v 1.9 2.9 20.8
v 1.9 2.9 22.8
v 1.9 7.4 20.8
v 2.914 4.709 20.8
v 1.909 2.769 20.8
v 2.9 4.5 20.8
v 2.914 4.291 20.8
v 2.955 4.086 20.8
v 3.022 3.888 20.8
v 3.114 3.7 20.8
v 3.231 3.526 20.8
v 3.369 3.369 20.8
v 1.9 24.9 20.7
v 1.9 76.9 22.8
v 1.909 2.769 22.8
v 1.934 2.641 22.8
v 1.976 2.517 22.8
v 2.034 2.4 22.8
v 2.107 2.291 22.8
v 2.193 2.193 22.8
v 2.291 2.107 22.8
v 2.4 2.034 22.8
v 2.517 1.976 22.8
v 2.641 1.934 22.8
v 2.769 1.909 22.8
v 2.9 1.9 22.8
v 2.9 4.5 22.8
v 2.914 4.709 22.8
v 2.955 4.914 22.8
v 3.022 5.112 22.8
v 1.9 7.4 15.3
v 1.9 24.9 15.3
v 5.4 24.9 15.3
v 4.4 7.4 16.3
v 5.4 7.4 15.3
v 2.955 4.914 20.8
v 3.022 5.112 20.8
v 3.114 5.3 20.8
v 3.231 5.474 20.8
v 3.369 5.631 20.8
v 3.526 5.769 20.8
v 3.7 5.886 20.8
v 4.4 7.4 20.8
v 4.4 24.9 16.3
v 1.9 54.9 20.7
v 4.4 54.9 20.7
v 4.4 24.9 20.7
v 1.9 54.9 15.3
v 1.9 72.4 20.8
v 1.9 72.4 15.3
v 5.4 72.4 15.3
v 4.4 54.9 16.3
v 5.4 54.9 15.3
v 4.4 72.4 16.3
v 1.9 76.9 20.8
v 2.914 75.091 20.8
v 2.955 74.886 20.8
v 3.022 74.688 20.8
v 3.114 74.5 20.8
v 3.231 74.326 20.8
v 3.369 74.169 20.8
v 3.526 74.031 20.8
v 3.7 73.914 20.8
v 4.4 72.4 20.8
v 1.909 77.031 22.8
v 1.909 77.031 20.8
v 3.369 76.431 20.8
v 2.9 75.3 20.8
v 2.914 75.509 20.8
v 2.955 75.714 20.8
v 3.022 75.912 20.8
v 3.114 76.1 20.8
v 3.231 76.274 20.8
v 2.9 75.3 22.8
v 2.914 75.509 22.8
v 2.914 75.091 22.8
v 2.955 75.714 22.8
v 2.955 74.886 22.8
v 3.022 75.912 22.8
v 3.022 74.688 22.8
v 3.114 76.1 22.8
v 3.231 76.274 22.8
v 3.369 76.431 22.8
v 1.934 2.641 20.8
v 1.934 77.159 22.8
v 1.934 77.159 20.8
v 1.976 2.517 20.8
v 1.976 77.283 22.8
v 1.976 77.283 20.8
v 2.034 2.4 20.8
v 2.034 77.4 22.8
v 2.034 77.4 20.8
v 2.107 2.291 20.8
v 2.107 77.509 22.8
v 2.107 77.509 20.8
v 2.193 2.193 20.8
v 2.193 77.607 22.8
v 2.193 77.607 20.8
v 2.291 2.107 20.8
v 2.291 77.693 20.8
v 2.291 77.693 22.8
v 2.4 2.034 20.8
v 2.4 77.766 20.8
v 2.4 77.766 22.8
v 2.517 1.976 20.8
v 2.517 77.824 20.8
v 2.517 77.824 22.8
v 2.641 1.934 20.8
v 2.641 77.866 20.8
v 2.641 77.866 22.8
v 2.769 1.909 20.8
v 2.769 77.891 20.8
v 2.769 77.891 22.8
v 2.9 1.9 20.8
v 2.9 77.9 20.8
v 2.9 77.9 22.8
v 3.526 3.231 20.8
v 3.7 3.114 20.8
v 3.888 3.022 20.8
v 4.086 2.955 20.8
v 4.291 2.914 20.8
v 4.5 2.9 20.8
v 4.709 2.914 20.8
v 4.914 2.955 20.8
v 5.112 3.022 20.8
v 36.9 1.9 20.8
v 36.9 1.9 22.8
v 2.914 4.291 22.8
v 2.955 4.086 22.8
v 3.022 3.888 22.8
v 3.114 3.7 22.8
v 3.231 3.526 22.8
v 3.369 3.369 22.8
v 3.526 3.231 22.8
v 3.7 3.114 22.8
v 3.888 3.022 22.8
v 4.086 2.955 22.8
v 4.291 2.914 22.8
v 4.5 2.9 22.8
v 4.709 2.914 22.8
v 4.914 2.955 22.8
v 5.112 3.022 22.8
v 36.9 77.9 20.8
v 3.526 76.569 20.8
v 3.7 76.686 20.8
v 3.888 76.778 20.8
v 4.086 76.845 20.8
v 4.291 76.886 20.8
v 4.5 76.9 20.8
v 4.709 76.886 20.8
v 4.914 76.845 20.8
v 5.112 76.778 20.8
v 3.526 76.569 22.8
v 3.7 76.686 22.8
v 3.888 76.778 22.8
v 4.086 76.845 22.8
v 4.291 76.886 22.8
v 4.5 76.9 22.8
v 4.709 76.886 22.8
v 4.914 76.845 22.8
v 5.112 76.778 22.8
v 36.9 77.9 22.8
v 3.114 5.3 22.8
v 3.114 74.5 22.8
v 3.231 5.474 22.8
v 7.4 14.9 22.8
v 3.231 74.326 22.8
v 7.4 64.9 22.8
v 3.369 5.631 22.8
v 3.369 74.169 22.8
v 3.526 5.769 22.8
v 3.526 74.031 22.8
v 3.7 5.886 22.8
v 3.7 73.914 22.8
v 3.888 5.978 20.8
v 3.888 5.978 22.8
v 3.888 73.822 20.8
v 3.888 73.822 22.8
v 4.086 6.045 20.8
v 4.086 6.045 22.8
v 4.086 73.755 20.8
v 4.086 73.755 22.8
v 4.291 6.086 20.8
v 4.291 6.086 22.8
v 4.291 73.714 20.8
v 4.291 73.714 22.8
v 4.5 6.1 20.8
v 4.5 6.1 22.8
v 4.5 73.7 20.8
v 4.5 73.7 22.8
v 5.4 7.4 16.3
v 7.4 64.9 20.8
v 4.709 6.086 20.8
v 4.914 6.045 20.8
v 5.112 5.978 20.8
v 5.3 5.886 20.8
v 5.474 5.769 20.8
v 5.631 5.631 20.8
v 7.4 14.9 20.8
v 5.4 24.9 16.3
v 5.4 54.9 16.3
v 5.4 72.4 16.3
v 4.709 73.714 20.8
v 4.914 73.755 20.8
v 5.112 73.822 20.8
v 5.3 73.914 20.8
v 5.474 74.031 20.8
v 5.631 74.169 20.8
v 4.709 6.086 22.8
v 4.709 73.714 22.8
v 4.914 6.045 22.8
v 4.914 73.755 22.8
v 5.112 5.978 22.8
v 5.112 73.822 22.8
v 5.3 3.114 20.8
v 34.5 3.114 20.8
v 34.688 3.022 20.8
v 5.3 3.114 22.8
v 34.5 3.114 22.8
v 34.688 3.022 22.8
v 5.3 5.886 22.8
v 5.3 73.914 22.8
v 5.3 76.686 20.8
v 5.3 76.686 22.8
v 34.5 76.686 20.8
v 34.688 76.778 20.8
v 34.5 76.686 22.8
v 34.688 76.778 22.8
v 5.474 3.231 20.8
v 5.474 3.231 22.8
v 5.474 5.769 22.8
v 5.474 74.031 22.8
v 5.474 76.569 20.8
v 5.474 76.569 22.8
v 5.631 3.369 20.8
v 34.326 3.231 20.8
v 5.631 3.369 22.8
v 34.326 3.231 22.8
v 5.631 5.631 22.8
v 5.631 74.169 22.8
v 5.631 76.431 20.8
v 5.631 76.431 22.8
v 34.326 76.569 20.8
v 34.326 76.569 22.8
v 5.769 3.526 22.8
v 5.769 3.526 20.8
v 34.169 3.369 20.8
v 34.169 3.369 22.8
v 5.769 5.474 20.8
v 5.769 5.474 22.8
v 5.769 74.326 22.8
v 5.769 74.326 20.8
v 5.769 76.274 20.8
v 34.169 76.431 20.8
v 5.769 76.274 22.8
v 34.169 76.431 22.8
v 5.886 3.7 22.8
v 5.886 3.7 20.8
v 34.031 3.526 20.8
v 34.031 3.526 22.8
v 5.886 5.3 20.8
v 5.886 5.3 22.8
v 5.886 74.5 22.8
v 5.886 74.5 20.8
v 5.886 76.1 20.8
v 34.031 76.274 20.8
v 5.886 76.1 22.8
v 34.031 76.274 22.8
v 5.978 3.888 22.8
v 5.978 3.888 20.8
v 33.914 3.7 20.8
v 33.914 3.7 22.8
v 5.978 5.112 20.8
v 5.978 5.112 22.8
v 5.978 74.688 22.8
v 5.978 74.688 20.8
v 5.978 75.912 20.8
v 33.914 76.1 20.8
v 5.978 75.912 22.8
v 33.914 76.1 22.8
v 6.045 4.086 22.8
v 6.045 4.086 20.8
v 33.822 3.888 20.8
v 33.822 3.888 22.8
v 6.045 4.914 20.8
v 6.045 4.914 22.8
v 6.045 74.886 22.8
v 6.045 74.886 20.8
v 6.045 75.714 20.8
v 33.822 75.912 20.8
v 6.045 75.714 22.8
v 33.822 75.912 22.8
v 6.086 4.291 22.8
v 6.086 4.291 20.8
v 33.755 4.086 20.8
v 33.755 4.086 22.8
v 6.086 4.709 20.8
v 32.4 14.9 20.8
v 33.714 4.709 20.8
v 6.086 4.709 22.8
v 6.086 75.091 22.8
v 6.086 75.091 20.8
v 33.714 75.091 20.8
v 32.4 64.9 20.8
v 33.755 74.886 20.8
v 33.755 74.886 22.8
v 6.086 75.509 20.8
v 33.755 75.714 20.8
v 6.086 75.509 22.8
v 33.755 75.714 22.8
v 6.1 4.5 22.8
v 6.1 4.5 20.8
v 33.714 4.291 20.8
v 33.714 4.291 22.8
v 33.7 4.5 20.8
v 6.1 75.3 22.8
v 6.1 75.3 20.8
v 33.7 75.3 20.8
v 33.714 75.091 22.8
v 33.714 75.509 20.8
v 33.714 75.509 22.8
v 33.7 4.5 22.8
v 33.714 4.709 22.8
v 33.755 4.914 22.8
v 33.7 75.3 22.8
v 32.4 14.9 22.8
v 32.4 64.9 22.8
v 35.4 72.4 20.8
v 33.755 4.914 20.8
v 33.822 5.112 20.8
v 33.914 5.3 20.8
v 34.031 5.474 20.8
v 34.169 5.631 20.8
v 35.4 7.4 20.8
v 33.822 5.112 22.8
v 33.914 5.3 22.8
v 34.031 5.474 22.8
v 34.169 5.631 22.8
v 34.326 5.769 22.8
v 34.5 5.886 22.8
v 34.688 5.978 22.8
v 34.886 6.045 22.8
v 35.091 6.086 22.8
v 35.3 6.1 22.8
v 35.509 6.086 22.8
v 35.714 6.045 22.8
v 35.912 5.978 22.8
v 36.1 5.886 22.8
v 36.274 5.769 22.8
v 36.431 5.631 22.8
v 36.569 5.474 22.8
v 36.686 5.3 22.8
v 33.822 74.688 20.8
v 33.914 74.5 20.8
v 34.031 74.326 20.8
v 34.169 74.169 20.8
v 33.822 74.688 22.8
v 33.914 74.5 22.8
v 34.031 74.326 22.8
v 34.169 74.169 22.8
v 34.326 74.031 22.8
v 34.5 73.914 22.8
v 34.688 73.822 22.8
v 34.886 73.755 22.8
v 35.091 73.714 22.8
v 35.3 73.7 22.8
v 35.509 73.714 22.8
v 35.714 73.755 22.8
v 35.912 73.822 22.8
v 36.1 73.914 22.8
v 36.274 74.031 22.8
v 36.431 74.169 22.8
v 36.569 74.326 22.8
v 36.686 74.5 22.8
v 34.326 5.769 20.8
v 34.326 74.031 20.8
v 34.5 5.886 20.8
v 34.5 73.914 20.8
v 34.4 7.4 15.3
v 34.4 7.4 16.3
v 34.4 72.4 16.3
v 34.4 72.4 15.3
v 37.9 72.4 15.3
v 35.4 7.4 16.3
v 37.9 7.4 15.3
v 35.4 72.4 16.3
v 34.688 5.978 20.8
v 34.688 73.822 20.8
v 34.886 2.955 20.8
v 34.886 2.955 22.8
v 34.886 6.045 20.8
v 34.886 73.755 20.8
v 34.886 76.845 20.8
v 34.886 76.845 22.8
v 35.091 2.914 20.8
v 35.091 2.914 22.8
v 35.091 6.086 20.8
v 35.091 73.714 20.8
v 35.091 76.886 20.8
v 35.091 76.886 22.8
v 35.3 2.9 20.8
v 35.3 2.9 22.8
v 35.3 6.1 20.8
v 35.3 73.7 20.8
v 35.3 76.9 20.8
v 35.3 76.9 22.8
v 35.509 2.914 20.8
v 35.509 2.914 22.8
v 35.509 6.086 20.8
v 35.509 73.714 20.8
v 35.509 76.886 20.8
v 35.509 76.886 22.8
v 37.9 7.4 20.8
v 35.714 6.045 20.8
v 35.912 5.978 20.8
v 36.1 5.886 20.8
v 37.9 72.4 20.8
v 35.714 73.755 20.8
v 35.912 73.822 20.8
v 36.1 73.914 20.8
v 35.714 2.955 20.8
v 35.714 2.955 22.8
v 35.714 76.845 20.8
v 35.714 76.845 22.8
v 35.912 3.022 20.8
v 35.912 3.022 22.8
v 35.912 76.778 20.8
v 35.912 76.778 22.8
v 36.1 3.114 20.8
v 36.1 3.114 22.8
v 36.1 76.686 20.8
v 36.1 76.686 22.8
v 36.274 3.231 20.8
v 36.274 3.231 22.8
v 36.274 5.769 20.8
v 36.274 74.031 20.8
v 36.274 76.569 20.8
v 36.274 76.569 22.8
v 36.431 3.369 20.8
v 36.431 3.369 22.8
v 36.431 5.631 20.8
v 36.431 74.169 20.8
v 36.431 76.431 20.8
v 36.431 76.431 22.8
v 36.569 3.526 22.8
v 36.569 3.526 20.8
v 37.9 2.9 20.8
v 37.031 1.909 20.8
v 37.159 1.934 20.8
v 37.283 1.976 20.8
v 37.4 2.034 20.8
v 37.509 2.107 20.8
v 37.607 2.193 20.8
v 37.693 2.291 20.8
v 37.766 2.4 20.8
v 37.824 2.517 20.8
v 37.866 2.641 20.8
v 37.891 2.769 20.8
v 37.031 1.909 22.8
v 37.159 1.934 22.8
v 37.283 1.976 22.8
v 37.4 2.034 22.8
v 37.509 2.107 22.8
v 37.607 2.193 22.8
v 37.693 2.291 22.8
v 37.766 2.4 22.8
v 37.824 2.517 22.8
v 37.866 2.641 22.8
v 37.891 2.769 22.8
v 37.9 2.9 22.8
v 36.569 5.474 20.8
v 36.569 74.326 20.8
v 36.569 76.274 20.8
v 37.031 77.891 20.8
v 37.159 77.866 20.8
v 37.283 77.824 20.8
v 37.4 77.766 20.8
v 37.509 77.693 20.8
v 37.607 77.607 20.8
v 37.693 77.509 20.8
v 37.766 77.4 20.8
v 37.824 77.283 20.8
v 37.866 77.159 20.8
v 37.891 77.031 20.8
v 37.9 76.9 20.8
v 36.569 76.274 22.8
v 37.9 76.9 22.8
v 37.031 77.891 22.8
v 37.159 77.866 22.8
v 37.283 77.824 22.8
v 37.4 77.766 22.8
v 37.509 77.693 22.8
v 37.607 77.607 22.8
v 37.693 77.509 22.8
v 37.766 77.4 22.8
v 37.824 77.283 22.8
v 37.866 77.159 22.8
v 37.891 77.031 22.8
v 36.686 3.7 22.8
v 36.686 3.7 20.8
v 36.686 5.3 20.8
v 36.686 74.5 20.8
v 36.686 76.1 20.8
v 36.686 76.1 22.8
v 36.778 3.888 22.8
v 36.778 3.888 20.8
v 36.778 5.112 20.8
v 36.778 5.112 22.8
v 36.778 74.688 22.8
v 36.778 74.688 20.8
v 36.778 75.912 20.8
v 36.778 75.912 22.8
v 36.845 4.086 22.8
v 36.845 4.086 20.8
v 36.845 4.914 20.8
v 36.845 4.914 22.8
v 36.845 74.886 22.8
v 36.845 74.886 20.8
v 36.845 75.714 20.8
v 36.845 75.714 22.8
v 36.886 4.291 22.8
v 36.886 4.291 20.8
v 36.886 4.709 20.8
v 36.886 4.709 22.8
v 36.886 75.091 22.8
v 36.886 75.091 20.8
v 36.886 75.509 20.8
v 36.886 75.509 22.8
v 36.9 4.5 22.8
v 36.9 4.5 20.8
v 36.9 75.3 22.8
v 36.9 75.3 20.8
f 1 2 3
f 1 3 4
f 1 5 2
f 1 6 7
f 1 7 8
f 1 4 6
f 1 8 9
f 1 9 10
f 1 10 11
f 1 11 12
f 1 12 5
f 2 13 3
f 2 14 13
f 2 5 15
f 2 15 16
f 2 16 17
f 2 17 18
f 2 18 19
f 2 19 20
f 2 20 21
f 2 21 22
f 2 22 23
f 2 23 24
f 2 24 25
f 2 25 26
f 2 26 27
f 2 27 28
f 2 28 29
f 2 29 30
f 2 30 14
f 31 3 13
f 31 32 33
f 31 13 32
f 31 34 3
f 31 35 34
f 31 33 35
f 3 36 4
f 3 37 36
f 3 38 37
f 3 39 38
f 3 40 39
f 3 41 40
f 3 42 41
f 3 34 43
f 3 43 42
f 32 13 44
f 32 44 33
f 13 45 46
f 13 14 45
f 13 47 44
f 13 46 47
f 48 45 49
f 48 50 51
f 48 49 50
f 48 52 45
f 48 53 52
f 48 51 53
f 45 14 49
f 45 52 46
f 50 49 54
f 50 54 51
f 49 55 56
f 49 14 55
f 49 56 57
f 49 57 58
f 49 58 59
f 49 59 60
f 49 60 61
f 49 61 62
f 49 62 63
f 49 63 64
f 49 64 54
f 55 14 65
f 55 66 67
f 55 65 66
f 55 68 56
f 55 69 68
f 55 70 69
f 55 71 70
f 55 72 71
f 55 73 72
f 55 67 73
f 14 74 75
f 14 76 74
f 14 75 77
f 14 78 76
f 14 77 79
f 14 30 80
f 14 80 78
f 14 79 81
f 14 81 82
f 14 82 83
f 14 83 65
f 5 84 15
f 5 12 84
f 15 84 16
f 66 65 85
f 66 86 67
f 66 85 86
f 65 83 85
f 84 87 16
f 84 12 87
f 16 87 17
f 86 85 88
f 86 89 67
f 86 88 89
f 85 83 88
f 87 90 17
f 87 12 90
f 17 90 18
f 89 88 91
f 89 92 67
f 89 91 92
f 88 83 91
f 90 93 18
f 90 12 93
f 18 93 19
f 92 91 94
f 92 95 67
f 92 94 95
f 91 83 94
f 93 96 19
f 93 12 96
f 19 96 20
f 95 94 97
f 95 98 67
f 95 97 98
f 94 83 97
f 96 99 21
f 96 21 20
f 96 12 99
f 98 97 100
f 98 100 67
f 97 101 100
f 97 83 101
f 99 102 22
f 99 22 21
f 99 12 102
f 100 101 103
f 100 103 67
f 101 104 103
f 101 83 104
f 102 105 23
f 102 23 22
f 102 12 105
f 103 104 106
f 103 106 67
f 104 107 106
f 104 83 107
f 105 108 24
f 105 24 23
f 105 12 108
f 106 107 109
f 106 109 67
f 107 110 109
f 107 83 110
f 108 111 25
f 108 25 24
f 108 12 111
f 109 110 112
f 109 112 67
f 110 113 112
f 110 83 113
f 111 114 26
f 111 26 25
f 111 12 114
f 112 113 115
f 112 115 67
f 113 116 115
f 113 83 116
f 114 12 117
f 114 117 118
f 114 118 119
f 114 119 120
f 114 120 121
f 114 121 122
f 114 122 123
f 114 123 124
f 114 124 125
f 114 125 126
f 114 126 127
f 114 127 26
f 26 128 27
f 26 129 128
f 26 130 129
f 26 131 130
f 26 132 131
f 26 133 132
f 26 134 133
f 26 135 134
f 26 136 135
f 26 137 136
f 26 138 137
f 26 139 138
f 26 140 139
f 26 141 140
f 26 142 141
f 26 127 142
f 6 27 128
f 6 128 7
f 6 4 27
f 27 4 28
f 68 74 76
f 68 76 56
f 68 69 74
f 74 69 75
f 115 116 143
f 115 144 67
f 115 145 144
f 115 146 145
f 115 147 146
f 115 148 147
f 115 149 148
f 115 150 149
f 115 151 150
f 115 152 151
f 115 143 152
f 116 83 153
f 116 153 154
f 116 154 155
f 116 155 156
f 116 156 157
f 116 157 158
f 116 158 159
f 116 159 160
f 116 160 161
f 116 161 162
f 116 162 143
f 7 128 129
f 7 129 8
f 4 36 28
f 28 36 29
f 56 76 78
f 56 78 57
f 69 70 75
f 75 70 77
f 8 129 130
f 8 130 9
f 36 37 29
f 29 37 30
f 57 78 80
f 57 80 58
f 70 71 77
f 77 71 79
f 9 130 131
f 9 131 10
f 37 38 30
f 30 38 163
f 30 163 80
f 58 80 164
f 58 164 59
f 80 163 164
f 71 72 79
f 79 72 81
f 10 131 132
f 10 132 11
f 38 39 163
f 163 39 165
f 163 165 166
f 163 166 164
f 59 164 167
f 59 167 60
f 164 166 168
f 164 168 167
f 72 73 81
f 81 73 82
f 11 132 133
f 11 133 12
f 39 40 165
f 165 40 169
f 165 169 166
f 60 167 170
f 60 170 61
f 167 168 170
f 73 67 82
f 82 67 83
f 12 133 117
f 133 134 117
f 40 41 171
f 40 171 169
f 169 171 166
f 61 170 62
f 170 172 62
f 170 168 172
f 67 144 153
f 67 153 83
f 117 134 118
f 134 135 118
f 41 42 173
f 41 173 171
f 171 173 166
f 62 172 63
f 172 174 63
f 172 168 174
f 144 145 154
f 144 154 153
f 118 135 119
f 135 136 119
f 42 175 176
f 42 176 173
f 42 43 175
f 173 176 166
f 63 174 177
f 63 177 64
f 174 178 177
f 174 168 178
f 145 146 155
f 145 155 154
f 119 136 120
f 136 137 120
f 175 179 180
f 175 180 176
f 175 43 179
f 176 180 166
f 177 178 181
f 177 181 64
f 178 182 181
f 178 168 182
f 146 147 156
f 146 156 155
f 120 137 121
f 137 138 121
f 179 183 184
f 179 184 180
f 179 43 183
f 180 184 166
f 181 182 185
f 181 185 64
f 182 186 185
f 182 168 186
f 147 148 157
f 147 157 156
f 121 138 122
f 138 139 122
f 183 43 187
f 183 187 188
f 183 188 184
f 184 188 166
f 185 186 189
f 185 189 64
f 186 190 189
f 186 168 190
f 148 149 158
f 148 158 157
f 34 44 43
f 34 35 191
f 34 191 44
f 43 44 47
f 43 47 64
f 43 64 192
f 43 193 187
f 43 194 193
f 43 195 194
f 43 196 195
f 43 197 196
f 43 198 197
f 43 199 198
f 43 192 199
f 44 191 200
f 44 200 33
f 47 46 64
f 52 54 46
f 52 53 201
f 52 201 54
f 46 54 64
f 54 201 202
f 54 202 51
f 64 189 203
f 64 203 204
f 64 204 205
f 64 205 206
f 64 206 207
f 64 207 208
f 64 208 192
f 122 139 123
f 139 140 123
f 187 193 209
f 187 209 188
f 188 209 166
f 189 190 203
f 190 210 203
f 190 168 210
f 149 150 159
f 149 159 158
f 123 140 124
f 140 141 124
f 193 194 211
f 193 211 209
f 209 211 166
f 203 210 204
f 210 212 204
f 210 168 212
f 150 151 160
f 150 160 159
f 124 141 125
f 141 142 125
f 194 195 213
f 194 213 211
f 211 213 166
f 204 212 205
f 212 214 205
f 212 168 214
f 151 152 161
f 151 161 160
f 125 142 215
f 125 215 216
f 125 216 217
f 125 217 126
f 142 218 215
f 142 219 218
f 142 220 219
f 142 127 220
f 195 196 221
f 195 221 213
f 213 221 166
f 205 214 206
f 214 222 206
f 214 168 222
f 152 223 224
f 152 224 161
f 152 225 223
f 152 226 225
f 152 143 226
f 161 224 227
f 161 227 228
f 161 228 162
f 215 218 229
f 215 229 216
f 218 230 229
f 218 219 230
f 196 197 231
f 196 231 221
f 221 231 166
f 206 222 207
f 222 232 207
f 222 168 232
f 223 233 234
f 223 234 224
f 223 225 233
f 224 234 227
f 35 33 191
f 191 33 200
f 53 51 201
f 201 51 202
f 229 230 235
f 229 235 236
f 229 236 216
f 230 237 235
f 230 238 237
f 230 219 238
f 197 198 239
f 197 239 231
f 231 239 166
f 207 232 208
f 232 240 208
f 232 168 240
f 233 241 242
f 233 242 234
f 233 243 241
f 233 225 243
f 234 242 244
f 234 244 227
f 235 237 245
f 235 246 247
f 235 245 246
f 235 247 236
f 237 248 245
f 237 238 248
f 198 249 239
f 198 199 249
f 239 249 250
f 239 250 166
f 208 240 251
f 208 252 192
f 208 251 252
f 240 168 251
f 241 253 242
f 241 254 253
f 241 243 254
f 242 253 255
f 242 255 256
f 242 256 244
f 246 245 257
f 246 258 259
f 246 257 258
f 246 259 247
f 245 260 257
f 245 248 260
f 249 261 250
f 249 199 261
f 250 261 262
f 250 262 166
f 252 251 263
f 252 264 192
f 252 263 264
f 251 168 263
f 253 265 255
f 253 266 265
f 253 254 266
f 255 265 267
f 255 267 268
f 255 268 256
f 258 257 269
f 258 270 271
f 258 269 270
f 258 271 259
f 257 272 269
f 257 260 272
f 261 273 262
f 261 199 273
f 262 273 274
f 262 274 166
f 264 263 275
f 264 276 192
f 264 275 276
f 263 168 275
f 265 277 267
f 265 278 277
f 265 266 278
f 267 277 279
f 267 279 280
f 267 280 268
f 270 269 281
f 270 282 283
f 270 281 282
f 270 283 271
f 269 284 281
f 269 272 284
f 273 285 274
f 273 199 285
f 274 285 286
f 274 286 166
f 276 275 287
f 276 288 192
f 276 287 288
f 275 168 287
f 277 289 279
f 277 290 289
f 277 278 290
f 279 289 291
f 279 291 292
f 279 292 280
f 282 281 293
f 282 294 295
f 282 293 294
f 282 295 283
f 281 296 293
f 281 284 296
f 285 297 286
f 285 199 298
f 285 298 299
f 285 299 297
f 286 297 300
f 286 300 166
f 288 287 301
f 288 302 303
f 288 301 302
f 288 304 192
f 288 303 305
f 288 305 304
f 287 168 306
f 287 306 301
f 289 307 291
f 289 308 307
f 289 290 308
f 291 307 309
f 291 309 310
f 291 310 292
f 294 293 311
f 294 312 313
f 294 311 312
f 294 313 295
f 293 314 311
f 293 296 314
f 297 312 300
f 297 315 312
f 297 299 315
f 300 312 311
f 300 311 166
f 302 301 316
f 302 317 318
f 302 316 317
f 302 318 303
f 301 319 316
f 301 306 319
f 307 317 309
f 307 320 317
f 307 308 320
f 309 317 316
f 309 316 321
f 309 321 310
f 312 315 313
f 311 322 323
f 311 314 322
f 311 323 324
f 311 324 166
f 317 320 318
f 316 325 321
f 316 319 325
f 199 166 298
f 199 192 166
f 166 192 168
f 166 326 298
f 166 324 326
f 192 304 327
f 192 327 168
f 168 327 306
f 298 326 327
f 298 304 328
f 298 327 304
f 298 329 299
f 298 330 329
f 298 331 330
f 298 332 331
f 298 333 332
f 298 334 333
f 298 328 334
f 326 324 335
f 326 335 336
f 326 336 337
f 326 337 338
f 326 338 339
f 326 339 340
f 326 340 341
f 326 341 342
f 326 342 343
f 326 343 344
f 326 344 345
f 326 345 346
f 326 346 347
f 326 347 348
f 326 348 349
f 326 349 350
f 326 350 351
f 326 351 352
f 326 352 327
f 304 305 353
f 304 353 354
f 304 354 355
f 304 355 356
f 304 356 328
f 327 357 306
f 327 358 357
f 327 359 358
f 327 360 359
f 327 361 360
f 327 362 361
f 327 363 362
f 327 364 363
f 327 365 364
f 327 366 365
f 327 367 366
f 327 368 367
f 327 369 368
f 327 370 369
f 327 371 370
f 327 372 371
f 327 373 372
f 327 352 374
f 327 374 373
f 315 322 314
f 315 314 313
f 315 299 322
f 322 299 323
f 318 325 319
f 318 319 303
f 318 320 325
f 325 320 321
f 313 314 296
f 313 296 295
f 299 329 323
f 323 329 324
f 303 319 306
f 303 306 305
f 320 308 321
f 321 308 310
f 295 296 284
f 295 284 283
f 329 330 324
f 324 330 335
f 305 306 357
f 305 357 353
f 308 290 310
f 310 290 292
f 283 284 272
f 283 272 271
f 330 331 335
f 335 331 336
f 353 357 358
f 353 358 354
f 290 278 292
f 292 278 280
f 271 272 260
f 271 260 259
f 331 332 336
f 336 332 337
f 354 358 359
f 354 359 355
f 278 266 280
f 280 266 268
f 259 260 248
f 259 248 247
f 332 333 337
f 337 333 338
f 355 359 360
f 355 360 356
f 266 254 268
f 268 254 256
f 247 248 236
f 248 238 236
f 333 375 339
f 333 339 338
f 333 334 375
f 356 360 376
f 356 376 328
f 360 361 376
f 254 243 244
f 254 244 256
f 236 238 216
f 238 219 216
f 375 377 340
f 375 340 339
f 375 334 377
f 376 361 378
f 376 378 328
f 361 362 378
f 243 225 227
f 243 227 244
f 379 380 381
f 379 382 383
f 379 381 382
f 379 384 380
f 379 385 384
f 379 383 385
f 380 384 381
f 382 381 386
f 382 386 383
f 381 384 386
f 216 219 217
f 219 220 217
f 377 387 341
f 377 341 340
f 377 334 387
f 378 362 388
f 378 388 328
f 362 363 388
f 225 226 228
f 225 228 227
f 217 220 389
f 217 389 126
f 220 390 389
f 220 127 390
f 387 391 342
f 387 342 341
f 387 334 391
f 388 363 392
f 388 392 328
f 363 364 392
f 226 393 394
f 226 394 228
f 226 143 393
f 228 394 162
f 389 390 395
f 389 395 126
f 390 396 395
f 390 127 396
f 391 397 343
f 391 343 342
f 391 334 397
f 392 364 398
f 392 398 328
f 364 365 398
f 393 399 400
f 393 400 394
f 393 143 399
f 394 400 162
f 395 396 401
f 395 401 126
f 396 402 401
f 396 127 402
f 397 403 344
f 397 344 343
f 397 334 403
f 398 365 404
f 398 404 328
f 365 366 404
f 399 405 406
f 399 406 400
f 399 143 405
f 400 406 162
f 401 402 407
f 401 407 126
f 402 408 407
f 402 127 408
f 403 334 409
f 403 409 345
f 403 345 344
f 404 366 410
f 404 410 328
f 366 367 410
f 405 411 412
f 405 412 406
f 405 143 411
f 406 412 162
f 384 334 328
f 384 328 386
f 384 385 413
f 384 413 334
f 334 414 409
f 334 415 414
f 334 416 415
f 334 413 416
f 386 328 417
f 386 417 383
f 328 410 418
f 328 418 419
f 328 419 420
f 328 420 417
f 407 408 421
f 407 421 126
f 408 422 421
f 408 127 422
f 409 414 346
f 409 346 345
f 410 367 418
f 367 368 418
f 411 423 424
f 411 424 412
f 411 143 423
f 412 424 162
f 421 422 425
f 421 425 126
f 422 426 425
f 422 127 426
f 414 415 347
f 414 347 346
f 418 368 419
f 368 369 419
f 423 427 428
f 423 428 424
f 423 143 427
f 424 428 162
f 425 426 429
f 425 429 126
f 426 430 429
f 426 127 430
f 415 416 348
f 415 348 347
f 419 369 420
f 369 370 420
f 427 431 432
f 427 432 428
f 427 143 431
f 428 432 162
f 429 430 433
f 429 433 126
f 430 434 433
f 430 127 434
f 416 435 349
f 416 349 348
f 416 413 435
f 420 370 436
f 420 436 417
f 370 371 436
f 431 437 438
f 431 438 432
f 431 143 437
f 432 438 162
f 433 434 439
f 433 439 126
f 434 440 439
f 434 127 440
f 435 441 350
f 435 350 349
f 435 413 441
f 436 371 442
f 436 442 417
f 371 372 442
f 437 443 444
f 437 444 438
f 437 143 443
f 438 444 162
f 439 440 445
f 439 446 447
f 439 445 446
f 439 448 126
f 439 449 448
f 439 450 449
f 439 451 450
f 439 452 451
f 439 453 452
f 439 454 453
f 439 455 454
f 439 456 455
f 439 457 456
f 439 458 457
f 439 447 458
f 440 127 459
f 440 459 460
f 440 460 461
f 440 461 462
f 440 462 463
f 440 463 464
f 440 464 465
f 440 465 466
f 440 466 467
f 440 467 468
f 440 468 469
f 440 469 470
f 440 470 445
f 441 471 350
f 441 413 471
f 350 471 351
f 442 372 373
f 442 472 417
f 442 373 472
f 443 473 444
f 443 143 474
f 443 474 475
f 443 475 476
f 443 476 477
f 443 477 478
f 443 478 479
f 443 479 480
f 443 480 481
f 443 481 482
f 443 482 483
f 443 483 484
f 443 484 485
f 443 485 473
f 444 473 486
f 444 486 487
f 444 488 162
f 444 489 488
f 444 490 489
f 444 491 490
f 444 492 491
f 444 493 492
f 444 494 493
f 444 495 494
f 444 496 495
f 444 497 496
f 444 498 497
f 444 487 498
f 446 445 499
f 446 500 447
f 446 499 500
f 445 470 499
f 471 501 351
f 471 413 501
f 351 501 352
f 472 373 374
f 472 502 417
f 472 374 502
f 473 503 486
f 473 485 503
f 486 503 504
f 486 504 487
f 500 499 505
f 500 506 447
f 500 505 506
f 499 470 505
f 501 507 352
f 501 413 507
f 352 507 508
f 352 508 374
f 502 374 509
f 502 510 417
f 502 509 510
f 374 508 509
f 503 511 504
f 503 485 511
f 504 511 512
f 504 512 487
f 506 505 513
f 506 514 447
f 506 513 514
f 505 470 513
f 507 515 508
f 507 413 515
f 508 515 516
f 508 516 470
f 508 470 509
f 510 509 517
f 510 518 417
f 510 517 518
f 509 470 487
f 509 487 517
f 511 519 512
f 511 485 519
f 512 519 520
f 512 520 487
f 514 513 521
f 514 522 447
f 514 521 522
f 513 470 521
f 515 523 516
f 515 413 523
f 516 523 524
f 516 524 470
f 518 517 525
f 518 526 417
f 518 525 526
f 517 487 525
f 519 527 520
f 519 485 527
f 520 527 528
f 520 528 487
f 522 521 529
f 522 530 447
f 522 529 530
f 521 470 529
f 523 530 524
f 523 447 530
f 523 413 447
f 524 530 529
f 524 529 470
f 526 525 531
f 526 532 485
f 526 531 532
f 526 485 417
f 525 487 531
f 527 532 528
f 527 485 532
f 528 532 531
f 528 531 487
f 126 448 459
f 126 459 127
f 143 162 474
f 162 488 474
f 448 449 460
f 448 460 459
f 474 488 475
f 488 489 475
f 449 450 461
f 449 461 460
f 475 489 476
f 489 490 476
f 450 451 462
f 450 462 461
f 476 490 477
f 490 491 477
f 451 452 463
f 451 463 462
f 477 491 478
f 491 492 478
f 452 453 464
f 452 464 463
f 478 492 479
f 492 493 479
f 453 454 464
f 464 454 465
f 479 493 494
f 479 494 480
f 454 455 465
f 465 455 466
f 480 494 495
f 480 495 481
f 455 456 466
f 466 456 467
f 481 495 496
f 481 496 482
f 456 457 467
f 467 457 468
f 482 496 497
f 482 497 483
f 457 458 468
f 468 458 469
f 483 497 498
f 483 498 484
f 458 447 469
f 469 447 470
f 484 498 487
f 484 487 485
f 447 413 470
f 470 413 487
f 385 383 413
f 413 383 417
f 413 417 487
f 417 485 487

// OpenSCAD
// Dilder Top-Mid Plate (windowed) v1 — display cover with viewing window + snap-fit rails
//
// Fits inside the top cover frame. Solid face plate all around (no wire gap in face).
// Rails extend to plate edges and retain a gap for wire pass-through below the face.
//
// Export:
//   openscad -o top-plate-windowed-v1.3mf top-plate-windowed-v1.scad

$fn = 48;

// ---- Board (Olimex ESP32-S3-DevKit-Lipo) ----
board_len      = 56;
board_wid      = 28;
antenna_proj   = 6;

// ---- Waveshare 2.13" display ----
disp_len       = 65;
disp_wid       = 30;
disp_thk       = 5;

// ---- 1000 mAh battery ----
bat_len        = 52;
bat_wid        = 35;

// ---- Enclosure geometry ----
wall_thk       = 2;
plate_thk      = 2;
pillar         = 5;
slop           = 0.4;
bat_chamber_h  = 6;
disp_clear     = 1;
board_thk      = 1.6;
wroom_h        = 3.2;

screw_clr      = 3.2;

// ---- Rounding ----
plate_corner_r = 1;

// ---- Display viewing window ----
topmid_window_w = 25;
topmid_window_l = 50;

// ---- Snap rails ----
snap_lip_d     = 1.0;       // lip protrusion inward under display
snap_lip_h     = 1.0;       // lip thickness — full printable layer
snap_rail_h    = 4.5;       // rail depth below face plate

// ---- Wire gap (rail only, not face plate) ----
wire_hole_len  = 30;
wire_hole_depth = 6;

// ---- Z layout ----
z_base_top     = plate_thk;
z_mid_bot      = z_base_top + bat_chamber_h;
z_mid_top      = z_mid_bot + plate_thk;
z_board_bot    = z_mid_top;
z_board_top    = z_board_bot + board_thk;
z_wroom_top    = z_board_top + wroom_h;
z_disp_bot     = z_wroom_top + disp_clear;
z_disp_top     = z_disp_bot + disp_thk;

// ---- XY layout ----
inner_wid      = max(board_wid, disp_wid, bat_wid) + 2 * slop;
inner_len      = max(board_len + antenna_proj, disp_len + 2 * pillar, bat_len) + 2 * slop;
outer_wid      = inner_wid + 2 * wall_thk;
outer_len      = inner_len + 2 * wall_thk;

pillar_xy = [
    [wall_thk,                             wall_thk                            ],
    [outer_wid - wall_thk - pillar,        wall_thk                            ],
    [wall_thk,                             outer_len - wall_thk - pillar       ],
    [outer_wid - wall_thk - pillar,        outer_len - wall_thk - pillar       ],
];

disp_x         = (outer_wid - disp_wid) / 2;
disp_y         = (outer_len - disp_len) / 2;


// ============== SHARED ==============

module rounded_v_box(w, l, h, r, fn = 48) {
    hull() {
        for (x = [r, w - r])
            for (y = [r, l - r])
                translate([x, y, 0])
                    cylinder(r = r, h = h, $fn = fn);
    }
}


// ============== TOP-MID PLATE (WINDOWED) v1 ==============

module top_plate_windowed() {
    plate_expand = 0.5;    // expand outer edge by 0.5mm per side
    plate_w = inner_wid - 2 * slop + 2 * plate_expand;
    plate_l = inner_len - 2 * slop + 2 * plate_expand;
    plate_x = wall_thk + slop - plate_expand;
    plate_y = wall_thk + slop - plate_expand;

    // Rails extend from display edge to plate edge
    rail_y_local      = disp_y - plate_y;
    rail_len          = disp_len;
    disp_x_local      = disp_x - plate_x;          // display left edge in local coords
    disp_x_right      = disp_x_local + disp_wid;    // display right edge

    // Rails flush with plate edges, thinned 0.5mm from display side
    rail_trim         = 0.5;
    rail_w_left       = disp_x_local - rail_trim;           // ~2.0mm
    rail_w_right      = plate_w - disp_x_right - rail_trim; // ~2.0mm

    // Lip positions (at display edges, protruding inward)
    lip_x_left        = disp_x_local;
    lip_x_right       = disp_x_right - snap_lip_d;

    // Display viewing window (centered on plate)
    win_x = (plate_w - topmid_window_w) / 2;
    win_y = (plate_l - topmid_window_l) / 2;

    // Wire gap in rail only (centered on Y)
    wire_y = (plate_l - wire_hole_len) / 2;

    translate([plate_x, plate_y, z_disp_top])
    difference() {
        union() {
            // Solid face plate
            rounded_v_box(plate_w, plate_l, plate_thk, plate_corner_r);

            // -X long rail (flush with plate edge, trimmed from display side)
            translate([0, rail_y_local, -snap_rail_h])
                cube([rail_w_left, rail_len, snap_rail_h]);
            // Lip: full-width shelf on rail bottom + inward protrusion
            translate([0, rail_y_local, -snap_rail_h - snap_lip_h])
                cube([rail_w_left + snap_lip_d, rail_len, snap_lip_h]);

            // +X long rail (flush with plate far edge, trimmed from display side)
            translate([disp_x_right + rail_trim, rail_y_local, -snap_rail_h])
                cube([rail_w_right, rail_len, snap_rail_h]);
            // Lip: full-width shelf on rail bottom + inward protrusion
            translate([disp_x_right + rail_trim - snap_lip_d, rail_y_local, -snap_rail_h - snap_lip_h])
                cube([rail_w_right + snap_lip_d, rail_len, snap_lip_h]);
        }

        // Screw clearance holes
        for (p = pillar_xy)
            translate([p[0] + pillar/2 - plate_x, p[1] + pillar/2 - plate_y,
                       -snap_rail_h - snap_lip_h - 1])
                cylinder(h = plate_thk + snap_rail_h + snap_lip_h + 2, d = screw_clr);

        // Display viewing window
        translate([win_x, win_y, -0.1])
            cube([topmid_window_w, topmid_window_l, plate_thk + 0.2]);

        // Wire gap — cuts through rail + lip ONLY (below face plate)
        translate([-0.1, wire_y, -snap_rail_h - snap_lip_h - 0.1])
            cube([wire_hole_depth + 0.1, wire_hole_len, snap_rail_h + snap_lip_h]);
    }
}

top_plate_windowed();
